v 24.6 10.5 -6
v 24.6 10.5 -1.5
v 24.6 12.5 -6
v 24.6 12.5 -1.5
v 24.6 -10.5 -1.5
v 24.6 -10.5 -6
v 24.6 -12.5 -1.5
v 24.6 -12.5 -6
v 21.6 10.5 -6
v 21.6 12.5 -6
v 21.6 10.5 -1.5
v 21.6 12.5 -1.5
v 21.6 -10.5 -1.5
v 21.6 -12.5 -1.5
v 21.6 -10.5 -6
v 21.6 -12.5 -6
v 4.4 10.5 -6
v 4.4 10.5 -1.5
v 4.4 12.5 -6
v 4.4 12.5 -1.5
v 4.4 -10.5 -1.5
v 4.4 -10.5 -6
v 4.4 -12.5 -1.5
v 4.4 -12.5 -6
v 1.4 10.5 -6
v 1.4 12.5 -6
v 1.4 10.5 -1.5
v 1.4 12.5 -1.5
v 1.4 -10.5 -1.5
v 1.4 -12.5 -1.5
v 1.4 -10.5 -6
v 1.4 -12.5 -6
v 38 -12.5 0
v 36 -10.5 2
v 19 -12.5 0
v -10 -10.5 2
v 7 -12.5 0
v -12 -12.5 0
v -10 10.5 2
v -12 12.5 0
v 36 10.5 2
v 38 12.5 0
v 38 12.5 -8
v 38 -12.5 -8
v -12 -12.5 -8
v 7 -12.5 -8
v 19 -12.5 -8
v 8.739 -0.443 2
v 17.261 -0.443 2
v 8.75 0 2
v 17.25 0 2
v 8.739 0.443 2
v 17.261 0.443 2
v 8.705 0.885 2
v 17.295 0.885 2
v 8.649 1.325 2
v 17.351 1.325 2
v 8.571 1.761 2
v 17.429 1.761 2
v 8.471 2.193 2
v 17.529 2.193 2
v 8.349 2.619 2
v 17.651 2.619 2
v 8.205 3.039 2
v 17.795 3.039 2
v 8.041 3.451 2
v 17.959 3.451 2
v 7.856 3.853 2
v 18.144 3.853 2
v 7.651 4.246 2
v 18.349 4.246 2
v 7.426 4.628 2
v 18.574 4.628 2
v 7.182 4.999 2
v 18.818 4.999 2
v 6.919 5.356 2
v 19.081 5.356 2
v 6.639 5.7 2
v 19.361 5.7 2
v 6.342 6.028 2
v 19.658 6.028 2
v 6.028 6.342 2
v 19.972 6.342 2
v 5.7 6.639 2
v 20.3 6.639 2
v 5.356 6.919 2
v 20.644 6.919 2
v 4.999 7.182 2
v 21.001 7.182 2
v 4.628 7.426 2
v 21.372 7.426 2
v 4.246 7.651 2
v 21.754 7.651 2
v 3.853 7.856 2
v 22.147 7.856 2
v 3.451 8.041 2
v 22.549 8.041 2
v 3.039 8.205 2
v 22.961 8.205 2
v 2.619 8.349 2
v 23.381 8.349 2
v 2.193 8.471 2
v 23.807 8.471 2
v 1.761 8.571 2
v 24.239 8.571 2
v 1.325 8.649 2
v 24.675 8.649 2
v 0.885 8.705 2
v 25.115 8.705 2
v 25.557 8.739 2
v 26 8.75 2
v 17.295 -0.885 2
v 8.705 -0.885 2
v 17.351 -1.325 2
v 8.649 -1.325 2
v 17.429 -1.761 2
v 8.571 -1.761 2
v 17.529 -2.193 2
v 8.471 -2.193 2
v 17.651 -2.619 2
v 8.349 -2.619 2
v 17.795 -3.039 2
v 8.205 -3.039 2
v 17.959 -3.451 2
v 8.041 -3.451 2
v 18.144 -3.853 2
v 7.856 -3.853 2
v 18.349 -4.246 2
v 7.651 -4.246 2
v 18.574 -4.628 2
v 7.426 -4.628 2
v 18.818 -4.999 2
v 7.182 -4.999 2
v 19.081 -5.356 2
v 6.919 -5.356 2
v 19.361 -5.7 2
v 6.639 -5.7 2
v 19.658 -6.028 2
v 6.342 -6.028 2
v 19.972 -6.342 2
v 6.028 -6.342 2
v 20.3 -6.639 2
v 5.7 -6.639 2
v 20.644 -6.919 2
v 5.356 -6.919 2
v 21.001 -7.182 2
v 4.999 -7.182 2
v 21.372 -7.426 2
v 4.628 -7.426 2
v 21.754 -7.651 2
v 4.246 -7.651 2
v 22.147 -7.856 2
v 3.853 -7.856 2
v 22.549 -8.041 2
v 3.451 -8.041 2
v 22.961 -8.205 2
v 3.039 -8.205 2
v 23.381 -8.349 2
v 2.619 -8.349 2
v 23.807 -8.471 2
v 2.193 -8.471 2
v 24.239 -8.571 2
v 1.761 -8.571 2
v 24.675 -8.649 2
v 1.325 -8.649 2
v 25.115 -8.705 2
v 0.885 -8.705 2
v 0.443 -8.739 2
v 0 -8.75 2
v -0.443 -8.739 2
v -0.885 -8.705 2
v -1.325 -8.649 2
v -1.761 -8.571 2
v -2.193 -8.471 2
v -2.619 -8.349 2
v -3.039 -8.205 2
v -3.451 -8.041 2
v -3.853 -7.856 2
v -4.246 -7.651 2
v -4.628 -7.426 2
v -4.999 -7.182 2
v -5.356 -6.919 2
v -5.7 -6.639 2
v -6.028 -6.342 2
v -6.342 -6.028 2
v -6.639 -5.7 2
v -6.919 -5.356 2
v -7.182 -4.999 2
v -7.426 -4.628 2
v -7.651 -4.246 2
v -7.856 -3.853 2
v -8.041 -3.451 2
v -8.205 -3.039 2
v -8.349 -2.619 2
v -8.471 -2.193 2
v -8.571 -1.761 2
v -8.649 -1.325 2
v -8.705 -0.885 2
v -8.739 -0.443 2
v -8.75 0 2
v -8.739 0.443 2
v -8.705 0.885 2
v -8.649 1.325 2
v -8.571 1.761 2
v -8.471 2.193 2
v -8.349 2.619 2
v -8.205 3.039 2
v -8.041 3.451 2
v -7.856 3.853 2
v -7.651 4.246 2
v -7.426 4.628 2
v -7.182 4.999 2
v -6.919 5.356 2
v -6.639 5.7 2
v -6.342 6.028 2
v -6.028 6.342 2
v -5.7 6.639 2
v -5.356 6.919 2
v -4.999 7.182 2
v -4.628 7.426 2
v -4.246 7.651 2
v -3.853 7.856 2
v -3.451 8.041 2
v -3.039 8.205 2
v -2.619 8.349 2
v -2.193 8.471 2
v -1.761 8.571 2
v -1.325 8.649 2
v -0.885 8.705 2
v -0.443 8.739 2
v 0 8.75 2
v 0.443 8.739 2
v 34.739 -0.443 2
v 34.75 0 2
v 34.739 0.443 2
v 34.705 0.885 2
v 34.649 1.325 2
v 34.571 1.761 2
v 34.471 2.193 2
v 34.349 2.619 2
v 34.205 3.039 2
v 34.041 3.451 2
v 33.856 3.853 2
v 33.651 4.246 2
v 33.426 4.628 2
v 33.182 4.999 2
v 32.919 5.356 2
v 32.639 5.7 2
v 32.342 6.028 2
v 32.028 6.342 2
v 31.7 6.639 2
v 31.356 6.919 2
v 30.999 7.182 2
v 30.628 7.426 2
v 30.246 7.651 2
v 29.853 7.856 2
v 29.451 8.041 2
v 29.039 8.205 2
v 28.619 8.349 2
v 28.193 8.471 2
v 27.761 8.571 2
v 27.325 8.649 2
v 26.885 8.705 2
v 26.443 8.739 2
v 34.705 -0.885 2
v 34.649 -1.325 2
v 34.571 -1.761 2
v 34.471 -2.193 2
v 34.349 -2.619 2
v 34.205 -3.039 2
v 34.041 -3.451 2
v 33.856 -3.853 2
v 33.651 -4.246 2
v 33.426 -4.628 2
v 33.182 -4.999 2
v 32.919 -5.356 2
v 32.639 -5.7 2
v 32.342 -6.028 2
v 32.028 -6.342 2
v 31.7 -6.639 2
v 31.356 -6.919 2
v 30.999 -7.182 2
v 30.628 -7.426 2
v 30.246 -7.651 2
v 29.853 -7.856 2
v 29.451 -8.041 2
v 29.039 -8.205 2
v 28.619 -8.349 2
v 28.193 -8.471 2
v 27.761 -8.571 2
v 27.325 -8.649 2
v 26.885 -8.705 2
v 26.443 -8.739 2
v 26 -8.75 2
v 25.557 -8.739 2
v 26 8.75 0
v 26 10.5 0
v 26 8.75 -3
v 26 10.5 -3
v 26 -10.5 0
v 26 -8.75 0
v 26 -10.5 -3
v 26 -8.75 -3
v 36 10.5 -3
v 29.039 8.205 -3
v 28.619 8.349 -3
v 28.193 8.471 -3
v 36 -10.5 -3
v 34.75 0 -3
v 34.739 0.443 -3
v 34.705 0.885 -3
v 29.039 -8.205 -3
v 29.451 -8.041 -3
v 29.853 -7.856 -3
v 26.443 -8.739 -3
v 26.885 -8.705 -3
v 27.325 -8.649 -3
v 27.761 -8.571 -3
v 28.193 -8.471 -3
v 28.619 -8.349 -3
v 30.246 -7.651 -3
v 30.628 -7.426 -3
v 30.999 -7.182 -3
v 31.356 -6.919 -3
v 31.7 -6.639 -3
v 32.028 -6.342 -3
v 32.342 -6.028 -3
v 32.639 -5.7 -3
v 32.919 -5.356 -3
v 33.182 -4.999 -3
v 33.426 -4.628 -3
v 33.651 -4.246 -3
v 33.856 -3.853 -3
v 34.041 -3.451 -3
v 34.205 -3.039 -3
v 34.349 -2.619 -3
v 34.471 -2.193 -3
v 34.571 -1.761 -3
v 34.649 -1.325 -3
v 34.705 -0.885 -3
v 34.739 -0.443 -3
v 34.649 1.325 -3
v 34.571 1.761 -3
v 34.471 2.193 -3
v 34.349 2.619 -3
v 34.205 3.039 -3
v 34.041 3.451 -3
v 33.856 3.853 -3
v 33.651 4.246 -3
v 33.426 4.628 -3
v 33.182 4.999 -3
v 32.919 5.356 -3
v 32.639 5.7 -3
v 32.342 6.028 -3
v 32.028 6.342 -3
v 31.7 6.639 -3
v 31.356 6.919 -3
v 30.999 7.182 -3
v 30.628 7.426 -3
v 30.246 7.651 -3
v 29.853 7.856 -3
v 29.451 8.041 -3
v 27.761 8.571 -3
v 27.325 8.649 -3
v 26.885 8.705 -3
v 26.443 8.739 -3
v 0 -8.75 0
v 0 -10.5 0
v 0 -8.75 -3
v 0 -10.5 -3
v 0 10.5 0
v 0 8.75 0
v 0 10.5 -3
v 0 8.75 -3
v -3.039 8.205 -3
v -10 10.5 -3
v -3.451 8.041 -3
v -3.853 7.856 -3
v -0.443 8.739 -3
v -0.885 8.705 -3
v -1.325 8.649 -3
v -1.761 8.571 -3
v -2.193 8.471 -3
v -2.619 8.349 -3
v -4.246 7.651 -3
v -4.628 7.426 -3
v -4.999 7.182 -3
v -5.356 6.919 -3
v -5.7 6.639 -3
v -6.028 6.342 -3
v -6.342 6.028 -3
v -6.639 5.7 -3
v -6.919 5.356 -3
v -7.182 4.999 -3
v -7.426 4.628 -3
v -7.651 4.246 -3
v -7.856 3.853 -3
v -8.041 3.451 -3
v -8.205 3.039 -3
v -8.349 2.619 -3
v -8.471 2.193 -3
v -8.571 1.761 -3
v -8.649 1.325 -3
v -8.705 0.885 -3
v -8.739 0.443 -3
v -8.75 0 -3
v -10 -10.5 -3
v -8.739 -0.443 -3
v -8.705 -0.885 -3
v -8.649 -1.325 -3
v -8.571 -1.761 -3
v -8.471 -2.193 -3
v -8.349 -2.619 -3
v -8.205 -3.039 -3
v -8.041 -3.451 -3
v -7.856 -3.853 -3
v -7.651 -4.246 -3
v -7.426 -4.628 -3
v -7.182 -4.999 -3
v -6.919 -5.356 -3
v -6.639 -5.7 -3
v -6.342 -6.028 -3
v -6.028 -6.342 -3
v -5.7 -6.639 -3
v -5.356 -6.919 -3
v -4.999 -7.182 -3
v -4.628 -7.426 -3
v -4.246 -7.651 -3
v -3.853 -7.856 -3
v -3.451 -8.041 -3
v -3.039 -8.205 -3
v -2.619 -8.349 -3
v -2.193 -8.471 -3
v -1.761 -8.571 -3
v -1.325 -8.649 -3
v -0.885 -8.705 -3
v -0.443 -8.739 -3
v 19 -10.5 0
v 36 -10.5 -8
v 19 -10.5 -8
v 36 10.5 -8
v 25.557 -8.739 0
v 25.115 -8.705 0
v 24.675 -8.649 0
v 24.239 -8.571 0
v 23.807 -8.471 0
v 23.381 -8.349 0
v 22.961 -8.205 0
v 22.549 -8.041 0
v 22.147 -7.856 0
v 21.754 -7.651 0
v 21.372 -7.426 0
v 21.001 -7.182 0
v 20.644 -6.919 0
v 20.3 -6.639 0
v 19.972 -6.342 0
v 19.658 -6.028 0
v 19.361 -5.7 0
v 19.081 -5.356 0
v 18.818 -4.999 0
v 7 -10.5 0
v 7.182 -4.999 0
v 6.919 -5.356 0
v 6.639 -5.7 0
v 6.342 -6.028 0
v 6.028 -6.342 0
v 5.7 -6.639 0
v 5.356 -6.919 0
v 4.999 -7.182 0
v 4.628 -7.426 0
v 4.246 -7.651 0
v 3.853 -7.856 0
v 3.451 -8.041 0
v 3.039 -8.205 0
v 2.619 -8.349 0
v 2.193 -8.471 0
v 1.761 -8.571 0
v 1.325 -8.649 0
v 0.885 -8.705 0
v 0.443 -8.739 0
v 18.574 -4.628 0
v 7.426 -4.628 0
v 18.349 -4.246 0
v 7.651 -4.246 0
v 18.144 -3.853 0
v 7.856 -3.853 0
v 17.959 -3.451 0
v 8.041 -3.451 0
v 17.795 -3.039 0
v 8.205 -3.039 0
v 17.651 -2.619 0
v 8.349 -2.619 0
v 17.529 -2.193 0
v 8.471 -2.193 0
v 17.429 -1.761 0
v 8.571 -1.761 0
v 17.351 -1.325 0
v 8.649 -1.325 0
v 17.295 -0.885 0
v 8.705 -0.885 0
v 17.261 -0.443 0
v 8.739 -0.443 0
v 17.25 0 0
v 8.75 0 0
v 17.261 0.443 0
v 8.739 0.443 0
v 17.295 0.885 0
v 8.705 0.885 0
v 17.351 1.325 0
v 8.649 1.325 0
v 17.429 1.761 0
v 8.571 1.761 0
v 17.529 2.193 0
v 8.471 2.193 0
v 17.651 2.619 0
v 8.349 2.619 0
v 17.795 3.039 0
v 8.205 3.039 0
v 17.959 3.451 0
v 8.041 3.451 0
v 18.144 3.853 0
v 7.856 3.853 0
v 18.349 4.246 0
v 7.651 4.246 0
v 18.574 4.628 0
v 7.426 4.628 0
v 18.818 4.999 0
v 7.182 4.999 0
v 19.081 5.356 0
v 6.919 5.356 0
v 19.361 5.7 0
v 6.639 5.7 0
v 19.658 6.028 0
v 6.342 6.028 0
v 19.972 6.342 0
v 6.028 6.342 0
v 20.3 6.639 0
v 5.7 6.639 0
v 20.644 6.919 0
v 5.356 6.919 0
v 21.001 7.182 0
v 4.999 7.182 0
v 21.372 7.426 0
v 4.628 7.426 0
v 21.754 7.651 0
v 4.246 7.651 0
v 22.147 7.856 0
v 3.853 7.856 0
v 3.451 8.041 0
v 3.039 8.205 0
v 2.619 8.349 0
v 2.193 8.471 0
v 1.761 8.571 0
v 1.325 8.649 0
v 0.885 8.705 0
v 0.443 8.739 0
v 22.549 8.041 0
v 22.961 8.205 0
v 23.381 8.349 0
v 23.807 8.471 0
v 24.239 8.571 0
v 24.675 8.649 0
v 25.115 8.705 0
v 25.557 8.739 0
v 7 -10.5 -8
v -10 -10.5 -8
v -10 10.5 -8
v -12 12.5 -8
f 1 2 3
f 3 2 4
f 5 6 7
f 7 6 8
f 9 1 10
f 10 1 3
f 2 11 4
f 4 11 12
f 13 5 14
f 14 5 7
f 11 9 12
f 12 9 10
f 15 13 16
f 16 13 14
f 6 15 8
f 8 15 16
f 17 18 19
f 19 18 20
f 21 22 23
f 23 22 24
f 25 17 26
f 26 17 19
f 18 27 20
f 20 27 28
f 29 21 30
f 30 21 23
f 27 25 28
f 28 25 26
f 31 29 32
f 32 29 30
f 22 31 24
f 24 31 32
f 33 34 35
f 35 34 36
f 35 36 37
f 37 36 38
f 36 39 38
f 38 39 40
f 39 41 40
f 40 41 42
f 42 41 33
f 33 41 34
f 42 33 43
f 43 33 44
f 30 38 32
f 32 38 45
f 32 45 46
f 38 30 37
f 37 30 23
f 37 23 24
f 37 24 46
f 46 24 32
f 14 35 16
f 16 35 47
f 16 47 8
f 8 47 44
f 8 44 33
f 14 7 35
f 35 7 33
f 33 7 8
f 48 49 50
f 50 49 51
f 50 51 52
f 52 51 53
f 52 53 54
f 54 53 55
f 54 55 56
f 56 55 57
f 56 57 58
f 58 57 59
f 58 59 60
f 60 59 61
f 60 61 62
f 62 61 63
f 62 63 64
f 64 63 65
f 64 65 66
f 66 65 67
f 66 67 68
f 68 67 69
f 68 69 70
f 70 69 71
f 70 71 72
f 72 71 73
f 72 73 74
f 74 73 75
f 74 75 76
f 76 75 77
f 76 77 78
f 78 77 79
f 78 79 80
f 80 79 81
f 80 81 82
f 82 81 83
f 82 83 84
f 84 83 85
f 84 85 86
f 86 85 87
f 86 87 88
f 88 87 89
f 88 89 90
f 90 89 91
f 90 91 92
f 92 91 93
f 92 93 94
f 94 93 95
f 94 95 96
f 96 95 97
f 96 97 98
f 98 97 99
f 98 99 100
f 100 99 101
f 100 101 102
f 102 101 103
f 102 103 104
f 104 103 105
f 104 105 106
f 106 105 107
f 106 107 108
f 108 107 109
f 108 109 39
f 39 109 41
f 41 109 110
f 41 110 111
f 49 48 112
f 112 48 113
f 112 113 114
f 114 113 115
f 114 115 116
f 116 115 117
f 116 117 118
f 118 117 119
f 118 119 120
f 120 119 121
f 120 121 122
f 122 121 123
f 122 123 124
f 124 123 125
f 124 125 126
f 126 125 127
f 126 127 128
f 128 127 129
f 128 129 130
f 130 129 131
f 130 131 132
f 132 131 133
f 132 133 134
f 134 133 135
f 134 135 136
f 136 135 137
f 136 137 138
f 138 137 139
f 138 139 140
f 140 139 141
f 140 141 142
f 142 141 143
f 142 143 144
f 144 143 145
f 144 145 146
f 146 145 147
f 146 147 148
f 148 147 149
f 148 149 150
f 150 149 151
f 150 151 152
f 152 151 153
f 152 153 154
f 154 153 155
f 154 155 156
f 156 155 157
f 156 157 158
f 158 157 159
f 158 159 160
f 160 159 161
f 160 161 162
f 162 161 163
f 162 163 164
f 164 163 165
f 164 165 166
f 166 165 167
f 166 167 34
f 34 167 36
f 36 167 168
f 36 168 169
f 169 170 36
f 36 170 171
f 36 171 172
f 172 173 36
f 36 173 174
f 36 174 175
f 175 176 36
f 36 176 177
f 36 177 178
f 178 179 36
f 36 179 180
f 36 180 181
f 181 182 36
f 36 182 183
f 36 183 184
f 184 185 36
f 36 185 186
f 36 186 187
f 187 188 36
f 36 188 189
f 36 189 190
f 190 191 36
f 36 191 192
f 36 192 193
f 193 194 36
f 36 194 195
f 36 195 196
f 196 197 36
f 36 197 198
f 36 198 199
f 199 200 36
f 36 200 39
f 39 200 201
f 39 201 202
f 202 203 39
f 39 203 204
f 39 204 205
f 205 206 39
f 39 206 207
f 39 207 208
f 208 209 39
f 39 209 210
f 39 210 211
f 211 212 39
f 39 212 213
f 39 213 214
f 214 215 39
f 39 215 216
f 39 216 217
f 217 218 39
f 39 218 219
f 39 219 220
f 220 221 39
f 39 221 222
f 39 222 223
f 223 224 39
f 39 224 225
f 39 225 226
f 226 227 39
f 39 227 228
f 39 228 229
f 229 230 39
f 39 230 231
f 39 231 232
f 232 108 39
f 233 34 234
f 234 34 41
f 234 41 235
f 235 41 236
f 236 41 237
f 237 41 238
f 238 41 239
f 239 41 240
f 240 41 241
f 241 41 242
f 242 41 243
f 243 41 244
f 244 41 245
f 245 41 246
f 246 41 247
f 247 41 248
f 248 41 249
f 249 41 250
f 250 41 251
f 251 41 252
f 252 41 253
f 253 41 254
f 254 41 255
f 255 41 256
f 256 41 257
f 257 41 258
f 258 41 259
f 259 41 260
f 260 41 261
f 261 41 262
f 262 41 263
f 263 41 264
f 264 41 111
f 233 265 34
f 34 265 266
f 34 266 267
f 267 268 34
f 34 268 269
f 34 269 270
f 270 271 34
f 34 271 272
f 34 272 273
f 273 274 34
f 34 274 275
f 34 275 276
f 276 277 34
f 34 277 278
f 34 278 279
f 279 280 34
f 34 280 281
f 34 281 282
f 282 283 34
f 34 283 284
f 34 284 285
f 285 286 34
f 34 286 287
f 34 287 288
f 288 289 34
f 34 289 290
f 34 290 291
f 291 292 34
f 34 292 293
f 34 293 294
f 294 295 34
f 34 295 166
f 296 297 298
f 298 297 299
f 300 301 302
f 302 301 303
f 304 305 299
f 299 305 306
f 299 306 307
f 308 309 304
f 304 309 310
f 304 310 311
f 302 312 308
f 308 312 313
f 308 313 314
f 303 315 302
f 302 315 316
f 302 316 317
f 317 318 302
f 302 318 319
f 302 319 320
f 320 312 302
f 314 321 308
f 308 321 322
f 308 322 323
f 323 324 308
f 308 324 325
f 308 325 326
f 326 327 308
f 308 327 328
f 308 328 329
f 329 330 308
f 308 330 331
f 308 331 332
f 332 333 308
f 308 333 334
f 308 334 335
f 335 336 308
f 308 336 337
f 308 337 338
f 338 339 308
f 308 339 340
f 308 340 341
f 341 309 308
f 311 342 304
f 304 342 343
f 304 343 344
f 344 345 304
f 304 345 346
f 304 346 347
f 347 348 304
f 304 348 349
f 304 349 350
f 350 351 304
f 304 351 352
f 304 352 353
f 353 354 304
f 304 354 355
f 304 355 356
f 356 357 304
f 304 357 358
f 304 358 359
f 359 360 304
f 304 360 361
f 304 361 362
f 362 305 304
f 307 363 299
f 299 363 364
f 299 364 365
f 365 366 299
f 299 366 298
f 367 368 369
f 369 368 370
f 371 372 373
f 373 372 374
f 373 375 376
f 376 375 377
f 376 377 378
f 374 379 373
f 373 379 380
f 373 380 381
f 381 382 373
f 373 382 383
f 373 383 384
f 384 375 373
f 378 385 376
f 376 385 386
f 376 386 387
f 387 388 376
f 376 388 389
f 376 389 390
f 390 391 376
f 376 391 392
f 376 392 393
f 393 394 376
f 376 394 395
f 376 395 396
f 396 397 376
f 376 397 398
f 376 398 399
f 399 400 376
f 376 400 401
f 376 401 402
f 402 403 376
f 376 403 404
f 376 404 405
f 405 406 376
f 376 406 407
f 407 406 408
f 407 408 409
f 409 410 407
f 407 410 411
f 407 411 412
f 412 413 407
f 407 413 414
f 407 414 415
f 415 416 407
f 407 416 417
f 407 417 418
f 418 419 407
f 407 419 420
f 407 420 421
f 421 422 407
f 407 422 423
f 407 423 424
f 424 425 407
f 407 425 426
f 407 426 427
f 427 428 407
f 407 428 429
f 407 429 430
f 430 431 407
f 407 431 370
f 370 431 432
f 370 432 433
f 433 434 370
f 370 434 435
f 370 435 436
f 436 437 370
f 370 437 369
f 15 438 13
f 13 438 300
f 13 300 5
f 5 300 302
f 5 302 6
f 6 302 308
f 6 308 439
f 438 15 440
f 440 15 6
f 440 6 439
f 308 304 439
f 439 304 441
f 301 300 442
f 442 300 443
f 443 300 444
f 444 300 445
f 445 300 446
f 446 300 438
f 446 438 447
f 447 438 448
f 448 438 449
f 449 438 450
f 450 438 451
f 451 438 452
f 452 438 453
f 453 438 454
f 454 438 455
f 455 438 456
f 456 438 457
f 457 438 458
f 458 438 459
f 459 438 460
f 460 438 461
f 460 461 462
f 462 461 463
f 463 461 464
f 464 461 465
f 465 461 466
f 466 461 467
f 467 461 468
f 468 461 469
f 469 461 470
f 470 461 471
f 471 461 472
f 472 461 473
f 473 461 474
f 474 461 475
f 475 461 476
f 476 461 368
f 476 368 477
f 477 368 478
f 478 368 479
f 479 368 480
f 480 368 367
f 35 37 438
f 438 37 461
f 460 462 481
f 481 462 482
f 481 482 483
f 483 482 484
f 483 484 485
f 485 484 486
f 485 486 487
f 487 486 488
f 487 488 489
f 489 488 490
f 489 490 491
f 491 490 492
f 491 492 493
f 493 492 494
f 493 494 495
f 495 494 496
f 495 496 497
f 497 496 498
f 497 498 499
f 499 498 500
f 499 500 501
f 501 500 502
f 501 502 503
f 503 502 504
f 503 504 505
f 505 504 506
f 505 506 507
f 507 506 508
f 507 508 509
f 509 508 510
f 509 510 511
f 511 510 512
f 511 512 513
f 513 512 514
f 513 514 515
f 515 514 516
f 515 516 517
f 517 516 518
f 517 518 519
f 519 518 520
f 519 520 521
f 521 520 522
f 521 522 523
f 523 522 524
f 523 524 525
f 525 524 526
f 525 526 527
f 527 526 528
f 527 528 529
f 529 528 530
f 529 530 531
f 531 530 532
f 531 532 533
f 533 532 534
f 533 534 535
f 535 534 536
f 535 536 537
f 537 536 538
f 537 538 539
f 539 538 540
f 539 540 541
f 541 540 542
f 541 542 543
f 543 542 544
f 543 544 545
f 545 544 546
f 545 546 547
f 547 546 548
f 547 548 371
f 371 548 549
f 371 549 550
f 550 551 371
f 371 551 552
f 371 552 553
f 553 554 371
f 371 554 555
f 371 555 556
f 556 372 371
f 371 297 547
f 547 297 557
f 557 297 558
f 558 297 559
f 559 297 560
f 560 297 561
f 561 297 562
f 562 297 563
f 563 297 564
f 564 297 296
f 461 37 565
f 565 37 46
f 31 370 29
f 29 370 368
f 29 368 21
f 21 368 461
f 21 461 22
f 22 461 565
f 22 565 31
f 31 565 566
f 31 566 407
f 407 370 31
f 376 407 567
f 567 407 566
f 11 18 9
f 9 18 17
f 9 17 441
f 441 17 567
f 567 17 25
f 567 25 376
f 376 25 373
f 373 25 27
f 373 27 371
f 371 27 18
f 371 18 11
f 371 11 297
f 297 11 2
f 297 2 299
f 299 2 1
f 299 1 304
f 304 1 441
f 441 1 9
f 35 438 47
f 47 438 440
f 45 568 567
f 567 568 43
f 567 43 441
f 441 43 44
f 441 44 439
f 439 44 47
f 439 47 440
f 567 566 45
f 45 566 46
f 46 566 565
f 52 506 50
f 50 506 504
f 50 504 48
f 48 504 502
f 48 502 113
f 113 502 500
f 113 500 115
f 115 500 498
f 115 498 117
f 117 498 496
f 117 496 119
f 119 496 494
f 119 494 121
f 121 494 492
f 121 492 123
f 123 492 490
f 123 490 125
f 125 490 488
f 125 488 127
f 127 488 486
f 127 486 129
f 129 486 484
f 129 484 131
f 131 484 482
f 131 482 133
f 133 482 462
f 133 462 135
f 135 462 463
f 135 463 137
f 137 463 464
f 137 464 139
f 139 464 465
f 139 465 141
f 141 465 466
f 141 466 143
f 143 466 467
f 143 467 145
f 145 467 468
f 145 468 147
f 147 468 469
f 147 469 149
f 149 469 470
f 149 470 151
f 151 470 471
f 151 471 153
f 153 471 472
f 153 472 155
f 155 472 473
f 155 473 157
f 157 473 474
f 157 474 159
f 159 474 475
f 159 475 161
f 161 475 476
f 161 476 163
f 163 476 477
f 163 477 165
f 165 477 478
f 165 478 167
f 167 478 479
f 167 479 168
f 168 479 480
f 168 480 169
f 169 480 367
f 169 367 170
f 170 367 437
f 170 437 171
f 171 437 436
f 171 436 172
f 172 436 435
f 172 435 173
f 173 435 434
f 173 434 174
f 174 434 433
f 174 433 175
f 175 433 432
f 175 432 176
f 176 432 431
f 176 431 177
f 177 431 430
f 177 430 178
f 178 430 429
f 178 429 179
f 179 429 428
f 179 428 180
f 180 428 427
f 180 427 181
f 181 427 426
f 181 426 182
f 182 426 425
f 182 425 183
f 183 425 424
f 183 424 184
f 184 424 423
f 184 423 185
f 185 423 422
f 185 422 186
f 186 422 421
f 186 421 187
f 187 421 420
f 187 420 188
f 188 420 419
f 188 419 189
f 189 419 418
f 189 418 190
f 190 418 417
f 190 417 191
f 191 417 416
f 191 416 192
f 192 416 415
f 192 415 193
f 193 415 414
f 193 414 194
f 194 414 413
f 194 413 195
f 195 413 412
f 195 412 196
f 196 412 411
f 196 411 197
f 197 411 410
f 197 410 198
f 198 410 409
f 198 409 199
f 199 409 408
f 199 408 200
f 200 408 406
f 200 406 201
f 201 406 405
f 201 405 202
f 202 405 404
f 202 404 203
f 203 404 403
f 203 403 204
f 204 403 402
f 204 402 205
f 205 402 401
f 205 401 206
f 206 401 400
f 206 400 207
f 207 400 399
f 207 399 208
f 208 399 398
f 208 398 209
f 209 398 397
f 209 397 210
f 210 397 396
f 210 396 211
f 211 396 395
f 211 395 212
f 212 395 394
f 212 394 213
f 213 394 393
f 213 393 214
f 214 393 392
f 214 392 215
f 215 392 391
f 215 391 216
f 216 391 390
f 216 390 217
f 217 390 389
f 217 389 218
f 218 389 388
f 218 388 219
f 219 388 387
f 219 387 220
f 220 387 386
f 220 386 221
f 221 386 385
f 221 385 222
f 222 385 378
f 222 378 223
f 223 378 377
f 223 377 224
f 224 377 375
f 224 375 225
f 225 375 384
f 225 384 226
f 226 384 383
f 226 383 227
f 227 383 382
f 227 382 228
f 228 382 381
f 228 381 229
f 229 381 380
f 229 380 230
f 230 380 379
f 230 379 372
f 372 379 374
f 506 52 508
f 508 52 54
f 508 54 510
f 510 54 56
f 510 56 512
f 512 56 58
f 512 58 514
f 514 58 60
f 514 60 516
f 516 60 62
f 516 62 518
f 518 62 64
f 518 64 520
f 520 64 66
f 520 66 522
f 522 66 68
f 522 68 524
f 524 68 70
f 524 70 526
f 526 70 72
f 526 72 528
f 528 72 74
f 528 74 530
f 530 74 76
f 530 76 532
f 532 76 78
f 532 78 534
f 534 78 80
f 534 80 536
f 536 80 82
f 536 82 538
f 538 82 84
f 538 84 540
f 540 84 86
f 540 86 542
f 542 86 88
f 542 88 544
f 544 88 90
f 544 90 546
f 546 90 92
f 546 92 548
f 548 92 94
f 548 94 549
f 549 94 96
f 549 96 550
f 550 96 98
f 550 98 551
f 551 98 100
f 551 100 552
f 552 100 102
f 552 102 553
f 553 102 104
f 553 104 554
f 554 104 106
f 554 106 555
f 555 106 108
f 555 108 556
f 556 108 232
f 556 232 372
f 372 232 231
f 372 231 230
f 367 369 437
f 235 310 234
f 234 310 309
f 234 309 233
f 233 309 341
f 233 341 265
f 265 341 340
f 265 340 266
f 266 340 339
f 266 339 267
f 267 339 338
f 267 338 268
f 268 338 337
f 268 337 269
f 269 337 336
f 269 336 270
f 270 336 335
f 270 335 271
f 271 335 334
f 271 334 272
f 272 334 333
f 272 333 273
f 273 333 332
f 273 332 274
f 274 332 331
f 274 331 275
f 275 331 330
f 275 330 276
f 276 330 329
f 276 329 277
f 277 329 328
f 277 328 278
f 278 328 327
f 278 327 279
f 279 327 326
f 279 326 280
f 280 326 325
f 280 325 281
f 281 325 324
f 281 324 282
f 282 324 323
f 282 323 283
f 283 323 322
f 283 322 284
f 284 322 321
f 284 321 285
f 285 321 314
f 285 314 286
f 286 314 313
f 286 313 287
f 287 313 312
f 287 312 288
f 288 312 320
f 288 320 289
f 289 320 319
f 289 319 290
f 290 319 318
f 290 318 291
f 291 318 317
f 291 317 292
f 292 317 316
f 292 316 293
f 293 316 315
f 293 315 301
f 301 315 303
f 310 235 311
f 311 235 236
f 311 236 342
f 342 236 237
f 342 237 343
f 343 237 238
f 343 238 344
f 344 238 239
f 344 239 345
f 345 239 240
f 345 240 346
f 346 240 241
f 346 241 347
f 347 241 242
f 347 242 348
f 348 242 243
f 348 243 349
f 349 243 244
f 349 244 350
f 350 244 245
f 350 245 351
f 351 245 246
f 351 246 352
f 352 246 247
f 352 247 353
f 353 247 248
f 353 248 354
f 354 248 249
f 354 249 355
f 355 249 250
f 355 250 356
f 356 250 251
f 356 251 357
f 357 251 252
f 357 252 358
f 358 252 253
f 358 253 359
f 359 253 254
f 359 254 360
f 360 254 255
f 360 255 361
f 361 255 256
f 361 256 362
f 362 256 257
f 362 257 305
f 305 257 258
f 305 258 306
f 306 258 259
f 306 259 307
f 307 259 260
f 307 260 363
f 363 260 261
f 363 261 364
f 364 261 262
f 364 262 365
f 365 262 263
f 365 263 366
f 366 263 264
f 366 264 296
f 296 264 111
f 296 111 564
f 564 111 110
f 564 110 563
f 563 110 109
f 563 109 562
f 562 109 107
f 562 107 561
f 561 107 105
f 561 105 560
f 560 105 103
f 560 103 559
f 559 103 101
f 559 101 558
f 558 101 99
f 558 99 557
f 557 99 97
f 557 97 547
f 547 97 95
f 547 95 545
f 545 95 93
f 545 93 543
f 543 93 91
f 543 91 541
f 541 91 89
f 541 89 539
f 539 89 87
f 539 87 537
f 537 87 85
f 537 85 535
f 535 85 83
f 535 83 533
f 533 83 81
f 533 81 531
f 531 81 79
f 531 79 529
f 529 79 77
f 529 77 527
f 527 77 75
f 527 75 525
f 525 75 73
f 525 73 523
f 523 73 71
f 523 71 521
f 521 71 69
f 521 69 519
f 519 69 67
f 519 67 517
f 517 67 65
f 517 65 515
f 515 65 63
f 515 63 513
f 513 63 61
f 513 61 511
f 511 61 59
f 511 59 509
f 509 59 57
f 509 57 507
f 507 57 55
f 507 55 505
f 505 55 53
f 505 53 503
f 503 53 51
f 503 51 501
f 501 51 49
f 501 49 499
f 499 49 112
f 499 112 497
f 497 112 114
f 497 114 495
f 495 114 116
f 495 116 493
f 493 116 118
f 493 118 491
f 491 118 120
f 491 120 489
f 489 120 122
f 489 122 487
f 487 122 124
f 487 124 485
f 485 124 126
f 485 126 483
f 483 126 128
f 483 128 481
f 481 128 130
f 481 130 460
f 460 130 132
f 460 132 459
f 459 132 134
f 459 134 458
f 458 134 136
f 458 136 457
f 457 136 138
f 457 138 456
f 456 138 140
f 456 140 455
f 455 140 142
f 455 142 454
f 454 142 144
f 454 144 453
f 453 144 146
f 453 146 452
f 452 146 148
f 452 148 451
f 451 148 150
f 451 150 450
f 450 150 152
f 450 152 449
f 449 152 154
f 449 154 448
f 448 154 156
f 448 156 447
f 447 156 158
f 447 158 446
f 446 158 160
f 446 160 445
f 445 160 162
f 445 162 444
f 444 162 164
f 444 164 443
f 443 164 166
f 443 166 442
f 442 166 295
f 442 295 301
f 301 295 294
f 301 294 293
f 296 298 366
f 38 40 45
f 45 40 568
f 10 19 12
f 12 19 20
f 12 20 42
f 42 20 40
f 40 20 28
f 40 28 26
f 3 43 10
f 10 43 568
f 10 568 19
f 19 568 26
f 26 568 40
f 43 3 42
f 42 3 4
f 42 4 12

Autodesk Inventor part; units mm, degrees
ref_plane "YZ Plane" through (0, 0, 0) normal (1, 0, 0) x (0, 1, 0)
ref_plane "XZ Plane" through (0, 0, 0) normal (0, 1, 0) x (-1, 0, 0)
ref_plane "XY Plane" through (0, 0, 0) normal (0, 0, 1) x (1, 0, 0)
sketch "Sketch1" plane through (0, 0, 0) normal (0, 0, 1) x (1, 0, 0)
  circle A0 centre (0, 0) radius 8.75
  circle A1 centre (26, 0) radius 8.75
  line L0 (-12, 12.5) -> (38, 12.5)
  line L1 (38, 12.5) -> (38, -12.5)
  line L2 (38, -12.5) -> (-12, -12.5)
  line L3 (-12, -12.5) -> (-12, 12.5)
  dimension "d0" = 17.5
  dimension "d1" = 17.5
  dimension "d2" = 26
  dimension "d3" = 50
  dimension "d4" = 25
  dimension "d5" = 12
  dimension "d6" = 12.5
extrude "Extrusion1" add sketch "Sketch1" along normal blind 2
sketch "Sketch2" plane through (0, 0, 0) normal (0, 0, -1) x (-1, 0, 0)
  line L0 (-38, 12.5) -> (12, 12.5) projected
  line L1 (12, -12.5) -> (-38, -12.5) projected
  line L2 (-38, 12.5) -> (12, 12.5)
  line L3 (12, 12.5) -> (12, -12.5)
  line L4 (-38, -12.5) -> (-38, 12.5)
  line L5 (-36, 10.5) -> (10, 10.5)
  line L6 (10, 10.5) -> (10, -10.5)
  line L7 (-36, -10.5) -> (-36, 10.5)
  line L8 (-19, -10.5) -> (-19, -12.5)
  line L9 (-7, -10.5) -> (-7, -12.5)
  line L10 (10, -10.5) -> (-7, -10.5)
  line L11 (-19, -10.5) -> (-36, -10.5)
  line L12 (12, -12.5) -> (-7, -12.5)
  line L13 (-19, -12.5) -> (-38, -12.5)
  point P0 (0, 0)
  point P1 (12, 12.5)
  point P2 (-19, -12.5)
  point P3 (-7, -12.5)
  dimension "d12" = 2
  dimension "d14" = 46
  dimension "d16" = 21
  dimension "d19" = 12
  dimension "d20" = 19
  dimension "d21" = 2
  dimension "d22" = 2
  dimension "d23" = 25
extrude "Extrusion2" add sketch "Sketch2" along normal blind 8 contours L0 L3 L1 L9 L10 L6 L5 L7 L11 L8 L4
sketch "Sketch3" plane through (0, 0, 0) normal (0, 0, -1) x (-1, 0, 0)
  circle A0 centre (-26, 0) radius 8.75 projected
  arc A1 (-26, 8.75) -> (-34.75, 0) centre (-26, 0) ccw
  line L0 (-36, 10.5) -> (-36, -10.5) projected
  line L1 (-36, 10.5) -> (-26, 10.5)
  line L2 (10, 10.5) -> (-36, 10.5) projected
  line L3 (-26, 8.75) -> (-26, 10.5)
  arc A2 (-34.75, 0) -> (-26, -8.75) centre (-26, 0) ccw
  line L4 (-26, -8.75) -> (-26, -10.5)
  line L5 (-19, -10.5) -> (-36, -10.5) projected
  line L6 (-36, -10.5) -> (-26, -10.5)
  line L7 (-36, 0) -> (-36, -10.5)
  circle A3 centre (0, 0) radius 8.75 projected
  arc A4 (8.75, 0) -> (0, 8.75) centre (0, 0) ccw
  arc A5 (0, -8.75) -> (8.75, 0) centre (0, 0) ccw
  line L8 (0, -8.75) -> (0, -10.5)
  line L9 (0, -10.5) -> (10, -10.5)
  line L10 (10, -10.5) -> (10, 10.5)
  line L11 (0, 10.5) -> (0, 8.75)
  point P0 (-26, 9.625)
  point P1 (-35.375, 0)
  point P2 (-26, -9.625)
  point P3 (0, 9.625)
extrude "Extrusion3" add sketch "Sketch3" along normal blind 3 contours A0 L4 L5 L0 L1 L3 | L10 L9 L8 A3 L11 L2
chamfer "Chamfer2" distance 2 angle 45 4 edges at (13, 12.5, 2) (13, -12.5, 2) (38, 0, 2) (-12, 0, 2)
sketch "Sketch5" plane through (19, -12.5, -8) normal (0, -1, 0) x (1, 0, 0)
  line L0 (5.6, 2) -> (2.6, 2)
  line L1 (2.6, 2) -> (2.6, 6.5)
  line L2 (2.6, 6.5) -> (5.6, 6.5)
  line L3 (5.6, 6.5) -> (5.6, 2)
  line L4 (-14.6, 2) -> (-17.6, 2)
  line L5 (-17.6, 2) -> (-17.6, 6.5)
  line L6 (-17.6, 6.5) -> (-14.6, 6.5)
  line L7 (-14.6, 6.5) -> (-14.6, 2)
  line L8 (19, 0) -> (19, 10) projected
  line L9 (0, 8) -> (19, 8) projected
  line L10 (19, 0) -> (0, 0) projected
  line L11 (-31, 8) -> (-12, 8) projected
  point P0 (-19, 8)
  dimension "d29" = 3
  dimension "d31" = 3
  dimension "d33" = 17.2
  dimension "d34" = 13.4
  dimension "d35" = 1.5
  dimension "d38" = 2
  dimension "d39" = 1.5
extrude "Extrusion4" cut sketch "Sketch5" against normal through all
properties part number "UltrasonicSensorMountTest"
